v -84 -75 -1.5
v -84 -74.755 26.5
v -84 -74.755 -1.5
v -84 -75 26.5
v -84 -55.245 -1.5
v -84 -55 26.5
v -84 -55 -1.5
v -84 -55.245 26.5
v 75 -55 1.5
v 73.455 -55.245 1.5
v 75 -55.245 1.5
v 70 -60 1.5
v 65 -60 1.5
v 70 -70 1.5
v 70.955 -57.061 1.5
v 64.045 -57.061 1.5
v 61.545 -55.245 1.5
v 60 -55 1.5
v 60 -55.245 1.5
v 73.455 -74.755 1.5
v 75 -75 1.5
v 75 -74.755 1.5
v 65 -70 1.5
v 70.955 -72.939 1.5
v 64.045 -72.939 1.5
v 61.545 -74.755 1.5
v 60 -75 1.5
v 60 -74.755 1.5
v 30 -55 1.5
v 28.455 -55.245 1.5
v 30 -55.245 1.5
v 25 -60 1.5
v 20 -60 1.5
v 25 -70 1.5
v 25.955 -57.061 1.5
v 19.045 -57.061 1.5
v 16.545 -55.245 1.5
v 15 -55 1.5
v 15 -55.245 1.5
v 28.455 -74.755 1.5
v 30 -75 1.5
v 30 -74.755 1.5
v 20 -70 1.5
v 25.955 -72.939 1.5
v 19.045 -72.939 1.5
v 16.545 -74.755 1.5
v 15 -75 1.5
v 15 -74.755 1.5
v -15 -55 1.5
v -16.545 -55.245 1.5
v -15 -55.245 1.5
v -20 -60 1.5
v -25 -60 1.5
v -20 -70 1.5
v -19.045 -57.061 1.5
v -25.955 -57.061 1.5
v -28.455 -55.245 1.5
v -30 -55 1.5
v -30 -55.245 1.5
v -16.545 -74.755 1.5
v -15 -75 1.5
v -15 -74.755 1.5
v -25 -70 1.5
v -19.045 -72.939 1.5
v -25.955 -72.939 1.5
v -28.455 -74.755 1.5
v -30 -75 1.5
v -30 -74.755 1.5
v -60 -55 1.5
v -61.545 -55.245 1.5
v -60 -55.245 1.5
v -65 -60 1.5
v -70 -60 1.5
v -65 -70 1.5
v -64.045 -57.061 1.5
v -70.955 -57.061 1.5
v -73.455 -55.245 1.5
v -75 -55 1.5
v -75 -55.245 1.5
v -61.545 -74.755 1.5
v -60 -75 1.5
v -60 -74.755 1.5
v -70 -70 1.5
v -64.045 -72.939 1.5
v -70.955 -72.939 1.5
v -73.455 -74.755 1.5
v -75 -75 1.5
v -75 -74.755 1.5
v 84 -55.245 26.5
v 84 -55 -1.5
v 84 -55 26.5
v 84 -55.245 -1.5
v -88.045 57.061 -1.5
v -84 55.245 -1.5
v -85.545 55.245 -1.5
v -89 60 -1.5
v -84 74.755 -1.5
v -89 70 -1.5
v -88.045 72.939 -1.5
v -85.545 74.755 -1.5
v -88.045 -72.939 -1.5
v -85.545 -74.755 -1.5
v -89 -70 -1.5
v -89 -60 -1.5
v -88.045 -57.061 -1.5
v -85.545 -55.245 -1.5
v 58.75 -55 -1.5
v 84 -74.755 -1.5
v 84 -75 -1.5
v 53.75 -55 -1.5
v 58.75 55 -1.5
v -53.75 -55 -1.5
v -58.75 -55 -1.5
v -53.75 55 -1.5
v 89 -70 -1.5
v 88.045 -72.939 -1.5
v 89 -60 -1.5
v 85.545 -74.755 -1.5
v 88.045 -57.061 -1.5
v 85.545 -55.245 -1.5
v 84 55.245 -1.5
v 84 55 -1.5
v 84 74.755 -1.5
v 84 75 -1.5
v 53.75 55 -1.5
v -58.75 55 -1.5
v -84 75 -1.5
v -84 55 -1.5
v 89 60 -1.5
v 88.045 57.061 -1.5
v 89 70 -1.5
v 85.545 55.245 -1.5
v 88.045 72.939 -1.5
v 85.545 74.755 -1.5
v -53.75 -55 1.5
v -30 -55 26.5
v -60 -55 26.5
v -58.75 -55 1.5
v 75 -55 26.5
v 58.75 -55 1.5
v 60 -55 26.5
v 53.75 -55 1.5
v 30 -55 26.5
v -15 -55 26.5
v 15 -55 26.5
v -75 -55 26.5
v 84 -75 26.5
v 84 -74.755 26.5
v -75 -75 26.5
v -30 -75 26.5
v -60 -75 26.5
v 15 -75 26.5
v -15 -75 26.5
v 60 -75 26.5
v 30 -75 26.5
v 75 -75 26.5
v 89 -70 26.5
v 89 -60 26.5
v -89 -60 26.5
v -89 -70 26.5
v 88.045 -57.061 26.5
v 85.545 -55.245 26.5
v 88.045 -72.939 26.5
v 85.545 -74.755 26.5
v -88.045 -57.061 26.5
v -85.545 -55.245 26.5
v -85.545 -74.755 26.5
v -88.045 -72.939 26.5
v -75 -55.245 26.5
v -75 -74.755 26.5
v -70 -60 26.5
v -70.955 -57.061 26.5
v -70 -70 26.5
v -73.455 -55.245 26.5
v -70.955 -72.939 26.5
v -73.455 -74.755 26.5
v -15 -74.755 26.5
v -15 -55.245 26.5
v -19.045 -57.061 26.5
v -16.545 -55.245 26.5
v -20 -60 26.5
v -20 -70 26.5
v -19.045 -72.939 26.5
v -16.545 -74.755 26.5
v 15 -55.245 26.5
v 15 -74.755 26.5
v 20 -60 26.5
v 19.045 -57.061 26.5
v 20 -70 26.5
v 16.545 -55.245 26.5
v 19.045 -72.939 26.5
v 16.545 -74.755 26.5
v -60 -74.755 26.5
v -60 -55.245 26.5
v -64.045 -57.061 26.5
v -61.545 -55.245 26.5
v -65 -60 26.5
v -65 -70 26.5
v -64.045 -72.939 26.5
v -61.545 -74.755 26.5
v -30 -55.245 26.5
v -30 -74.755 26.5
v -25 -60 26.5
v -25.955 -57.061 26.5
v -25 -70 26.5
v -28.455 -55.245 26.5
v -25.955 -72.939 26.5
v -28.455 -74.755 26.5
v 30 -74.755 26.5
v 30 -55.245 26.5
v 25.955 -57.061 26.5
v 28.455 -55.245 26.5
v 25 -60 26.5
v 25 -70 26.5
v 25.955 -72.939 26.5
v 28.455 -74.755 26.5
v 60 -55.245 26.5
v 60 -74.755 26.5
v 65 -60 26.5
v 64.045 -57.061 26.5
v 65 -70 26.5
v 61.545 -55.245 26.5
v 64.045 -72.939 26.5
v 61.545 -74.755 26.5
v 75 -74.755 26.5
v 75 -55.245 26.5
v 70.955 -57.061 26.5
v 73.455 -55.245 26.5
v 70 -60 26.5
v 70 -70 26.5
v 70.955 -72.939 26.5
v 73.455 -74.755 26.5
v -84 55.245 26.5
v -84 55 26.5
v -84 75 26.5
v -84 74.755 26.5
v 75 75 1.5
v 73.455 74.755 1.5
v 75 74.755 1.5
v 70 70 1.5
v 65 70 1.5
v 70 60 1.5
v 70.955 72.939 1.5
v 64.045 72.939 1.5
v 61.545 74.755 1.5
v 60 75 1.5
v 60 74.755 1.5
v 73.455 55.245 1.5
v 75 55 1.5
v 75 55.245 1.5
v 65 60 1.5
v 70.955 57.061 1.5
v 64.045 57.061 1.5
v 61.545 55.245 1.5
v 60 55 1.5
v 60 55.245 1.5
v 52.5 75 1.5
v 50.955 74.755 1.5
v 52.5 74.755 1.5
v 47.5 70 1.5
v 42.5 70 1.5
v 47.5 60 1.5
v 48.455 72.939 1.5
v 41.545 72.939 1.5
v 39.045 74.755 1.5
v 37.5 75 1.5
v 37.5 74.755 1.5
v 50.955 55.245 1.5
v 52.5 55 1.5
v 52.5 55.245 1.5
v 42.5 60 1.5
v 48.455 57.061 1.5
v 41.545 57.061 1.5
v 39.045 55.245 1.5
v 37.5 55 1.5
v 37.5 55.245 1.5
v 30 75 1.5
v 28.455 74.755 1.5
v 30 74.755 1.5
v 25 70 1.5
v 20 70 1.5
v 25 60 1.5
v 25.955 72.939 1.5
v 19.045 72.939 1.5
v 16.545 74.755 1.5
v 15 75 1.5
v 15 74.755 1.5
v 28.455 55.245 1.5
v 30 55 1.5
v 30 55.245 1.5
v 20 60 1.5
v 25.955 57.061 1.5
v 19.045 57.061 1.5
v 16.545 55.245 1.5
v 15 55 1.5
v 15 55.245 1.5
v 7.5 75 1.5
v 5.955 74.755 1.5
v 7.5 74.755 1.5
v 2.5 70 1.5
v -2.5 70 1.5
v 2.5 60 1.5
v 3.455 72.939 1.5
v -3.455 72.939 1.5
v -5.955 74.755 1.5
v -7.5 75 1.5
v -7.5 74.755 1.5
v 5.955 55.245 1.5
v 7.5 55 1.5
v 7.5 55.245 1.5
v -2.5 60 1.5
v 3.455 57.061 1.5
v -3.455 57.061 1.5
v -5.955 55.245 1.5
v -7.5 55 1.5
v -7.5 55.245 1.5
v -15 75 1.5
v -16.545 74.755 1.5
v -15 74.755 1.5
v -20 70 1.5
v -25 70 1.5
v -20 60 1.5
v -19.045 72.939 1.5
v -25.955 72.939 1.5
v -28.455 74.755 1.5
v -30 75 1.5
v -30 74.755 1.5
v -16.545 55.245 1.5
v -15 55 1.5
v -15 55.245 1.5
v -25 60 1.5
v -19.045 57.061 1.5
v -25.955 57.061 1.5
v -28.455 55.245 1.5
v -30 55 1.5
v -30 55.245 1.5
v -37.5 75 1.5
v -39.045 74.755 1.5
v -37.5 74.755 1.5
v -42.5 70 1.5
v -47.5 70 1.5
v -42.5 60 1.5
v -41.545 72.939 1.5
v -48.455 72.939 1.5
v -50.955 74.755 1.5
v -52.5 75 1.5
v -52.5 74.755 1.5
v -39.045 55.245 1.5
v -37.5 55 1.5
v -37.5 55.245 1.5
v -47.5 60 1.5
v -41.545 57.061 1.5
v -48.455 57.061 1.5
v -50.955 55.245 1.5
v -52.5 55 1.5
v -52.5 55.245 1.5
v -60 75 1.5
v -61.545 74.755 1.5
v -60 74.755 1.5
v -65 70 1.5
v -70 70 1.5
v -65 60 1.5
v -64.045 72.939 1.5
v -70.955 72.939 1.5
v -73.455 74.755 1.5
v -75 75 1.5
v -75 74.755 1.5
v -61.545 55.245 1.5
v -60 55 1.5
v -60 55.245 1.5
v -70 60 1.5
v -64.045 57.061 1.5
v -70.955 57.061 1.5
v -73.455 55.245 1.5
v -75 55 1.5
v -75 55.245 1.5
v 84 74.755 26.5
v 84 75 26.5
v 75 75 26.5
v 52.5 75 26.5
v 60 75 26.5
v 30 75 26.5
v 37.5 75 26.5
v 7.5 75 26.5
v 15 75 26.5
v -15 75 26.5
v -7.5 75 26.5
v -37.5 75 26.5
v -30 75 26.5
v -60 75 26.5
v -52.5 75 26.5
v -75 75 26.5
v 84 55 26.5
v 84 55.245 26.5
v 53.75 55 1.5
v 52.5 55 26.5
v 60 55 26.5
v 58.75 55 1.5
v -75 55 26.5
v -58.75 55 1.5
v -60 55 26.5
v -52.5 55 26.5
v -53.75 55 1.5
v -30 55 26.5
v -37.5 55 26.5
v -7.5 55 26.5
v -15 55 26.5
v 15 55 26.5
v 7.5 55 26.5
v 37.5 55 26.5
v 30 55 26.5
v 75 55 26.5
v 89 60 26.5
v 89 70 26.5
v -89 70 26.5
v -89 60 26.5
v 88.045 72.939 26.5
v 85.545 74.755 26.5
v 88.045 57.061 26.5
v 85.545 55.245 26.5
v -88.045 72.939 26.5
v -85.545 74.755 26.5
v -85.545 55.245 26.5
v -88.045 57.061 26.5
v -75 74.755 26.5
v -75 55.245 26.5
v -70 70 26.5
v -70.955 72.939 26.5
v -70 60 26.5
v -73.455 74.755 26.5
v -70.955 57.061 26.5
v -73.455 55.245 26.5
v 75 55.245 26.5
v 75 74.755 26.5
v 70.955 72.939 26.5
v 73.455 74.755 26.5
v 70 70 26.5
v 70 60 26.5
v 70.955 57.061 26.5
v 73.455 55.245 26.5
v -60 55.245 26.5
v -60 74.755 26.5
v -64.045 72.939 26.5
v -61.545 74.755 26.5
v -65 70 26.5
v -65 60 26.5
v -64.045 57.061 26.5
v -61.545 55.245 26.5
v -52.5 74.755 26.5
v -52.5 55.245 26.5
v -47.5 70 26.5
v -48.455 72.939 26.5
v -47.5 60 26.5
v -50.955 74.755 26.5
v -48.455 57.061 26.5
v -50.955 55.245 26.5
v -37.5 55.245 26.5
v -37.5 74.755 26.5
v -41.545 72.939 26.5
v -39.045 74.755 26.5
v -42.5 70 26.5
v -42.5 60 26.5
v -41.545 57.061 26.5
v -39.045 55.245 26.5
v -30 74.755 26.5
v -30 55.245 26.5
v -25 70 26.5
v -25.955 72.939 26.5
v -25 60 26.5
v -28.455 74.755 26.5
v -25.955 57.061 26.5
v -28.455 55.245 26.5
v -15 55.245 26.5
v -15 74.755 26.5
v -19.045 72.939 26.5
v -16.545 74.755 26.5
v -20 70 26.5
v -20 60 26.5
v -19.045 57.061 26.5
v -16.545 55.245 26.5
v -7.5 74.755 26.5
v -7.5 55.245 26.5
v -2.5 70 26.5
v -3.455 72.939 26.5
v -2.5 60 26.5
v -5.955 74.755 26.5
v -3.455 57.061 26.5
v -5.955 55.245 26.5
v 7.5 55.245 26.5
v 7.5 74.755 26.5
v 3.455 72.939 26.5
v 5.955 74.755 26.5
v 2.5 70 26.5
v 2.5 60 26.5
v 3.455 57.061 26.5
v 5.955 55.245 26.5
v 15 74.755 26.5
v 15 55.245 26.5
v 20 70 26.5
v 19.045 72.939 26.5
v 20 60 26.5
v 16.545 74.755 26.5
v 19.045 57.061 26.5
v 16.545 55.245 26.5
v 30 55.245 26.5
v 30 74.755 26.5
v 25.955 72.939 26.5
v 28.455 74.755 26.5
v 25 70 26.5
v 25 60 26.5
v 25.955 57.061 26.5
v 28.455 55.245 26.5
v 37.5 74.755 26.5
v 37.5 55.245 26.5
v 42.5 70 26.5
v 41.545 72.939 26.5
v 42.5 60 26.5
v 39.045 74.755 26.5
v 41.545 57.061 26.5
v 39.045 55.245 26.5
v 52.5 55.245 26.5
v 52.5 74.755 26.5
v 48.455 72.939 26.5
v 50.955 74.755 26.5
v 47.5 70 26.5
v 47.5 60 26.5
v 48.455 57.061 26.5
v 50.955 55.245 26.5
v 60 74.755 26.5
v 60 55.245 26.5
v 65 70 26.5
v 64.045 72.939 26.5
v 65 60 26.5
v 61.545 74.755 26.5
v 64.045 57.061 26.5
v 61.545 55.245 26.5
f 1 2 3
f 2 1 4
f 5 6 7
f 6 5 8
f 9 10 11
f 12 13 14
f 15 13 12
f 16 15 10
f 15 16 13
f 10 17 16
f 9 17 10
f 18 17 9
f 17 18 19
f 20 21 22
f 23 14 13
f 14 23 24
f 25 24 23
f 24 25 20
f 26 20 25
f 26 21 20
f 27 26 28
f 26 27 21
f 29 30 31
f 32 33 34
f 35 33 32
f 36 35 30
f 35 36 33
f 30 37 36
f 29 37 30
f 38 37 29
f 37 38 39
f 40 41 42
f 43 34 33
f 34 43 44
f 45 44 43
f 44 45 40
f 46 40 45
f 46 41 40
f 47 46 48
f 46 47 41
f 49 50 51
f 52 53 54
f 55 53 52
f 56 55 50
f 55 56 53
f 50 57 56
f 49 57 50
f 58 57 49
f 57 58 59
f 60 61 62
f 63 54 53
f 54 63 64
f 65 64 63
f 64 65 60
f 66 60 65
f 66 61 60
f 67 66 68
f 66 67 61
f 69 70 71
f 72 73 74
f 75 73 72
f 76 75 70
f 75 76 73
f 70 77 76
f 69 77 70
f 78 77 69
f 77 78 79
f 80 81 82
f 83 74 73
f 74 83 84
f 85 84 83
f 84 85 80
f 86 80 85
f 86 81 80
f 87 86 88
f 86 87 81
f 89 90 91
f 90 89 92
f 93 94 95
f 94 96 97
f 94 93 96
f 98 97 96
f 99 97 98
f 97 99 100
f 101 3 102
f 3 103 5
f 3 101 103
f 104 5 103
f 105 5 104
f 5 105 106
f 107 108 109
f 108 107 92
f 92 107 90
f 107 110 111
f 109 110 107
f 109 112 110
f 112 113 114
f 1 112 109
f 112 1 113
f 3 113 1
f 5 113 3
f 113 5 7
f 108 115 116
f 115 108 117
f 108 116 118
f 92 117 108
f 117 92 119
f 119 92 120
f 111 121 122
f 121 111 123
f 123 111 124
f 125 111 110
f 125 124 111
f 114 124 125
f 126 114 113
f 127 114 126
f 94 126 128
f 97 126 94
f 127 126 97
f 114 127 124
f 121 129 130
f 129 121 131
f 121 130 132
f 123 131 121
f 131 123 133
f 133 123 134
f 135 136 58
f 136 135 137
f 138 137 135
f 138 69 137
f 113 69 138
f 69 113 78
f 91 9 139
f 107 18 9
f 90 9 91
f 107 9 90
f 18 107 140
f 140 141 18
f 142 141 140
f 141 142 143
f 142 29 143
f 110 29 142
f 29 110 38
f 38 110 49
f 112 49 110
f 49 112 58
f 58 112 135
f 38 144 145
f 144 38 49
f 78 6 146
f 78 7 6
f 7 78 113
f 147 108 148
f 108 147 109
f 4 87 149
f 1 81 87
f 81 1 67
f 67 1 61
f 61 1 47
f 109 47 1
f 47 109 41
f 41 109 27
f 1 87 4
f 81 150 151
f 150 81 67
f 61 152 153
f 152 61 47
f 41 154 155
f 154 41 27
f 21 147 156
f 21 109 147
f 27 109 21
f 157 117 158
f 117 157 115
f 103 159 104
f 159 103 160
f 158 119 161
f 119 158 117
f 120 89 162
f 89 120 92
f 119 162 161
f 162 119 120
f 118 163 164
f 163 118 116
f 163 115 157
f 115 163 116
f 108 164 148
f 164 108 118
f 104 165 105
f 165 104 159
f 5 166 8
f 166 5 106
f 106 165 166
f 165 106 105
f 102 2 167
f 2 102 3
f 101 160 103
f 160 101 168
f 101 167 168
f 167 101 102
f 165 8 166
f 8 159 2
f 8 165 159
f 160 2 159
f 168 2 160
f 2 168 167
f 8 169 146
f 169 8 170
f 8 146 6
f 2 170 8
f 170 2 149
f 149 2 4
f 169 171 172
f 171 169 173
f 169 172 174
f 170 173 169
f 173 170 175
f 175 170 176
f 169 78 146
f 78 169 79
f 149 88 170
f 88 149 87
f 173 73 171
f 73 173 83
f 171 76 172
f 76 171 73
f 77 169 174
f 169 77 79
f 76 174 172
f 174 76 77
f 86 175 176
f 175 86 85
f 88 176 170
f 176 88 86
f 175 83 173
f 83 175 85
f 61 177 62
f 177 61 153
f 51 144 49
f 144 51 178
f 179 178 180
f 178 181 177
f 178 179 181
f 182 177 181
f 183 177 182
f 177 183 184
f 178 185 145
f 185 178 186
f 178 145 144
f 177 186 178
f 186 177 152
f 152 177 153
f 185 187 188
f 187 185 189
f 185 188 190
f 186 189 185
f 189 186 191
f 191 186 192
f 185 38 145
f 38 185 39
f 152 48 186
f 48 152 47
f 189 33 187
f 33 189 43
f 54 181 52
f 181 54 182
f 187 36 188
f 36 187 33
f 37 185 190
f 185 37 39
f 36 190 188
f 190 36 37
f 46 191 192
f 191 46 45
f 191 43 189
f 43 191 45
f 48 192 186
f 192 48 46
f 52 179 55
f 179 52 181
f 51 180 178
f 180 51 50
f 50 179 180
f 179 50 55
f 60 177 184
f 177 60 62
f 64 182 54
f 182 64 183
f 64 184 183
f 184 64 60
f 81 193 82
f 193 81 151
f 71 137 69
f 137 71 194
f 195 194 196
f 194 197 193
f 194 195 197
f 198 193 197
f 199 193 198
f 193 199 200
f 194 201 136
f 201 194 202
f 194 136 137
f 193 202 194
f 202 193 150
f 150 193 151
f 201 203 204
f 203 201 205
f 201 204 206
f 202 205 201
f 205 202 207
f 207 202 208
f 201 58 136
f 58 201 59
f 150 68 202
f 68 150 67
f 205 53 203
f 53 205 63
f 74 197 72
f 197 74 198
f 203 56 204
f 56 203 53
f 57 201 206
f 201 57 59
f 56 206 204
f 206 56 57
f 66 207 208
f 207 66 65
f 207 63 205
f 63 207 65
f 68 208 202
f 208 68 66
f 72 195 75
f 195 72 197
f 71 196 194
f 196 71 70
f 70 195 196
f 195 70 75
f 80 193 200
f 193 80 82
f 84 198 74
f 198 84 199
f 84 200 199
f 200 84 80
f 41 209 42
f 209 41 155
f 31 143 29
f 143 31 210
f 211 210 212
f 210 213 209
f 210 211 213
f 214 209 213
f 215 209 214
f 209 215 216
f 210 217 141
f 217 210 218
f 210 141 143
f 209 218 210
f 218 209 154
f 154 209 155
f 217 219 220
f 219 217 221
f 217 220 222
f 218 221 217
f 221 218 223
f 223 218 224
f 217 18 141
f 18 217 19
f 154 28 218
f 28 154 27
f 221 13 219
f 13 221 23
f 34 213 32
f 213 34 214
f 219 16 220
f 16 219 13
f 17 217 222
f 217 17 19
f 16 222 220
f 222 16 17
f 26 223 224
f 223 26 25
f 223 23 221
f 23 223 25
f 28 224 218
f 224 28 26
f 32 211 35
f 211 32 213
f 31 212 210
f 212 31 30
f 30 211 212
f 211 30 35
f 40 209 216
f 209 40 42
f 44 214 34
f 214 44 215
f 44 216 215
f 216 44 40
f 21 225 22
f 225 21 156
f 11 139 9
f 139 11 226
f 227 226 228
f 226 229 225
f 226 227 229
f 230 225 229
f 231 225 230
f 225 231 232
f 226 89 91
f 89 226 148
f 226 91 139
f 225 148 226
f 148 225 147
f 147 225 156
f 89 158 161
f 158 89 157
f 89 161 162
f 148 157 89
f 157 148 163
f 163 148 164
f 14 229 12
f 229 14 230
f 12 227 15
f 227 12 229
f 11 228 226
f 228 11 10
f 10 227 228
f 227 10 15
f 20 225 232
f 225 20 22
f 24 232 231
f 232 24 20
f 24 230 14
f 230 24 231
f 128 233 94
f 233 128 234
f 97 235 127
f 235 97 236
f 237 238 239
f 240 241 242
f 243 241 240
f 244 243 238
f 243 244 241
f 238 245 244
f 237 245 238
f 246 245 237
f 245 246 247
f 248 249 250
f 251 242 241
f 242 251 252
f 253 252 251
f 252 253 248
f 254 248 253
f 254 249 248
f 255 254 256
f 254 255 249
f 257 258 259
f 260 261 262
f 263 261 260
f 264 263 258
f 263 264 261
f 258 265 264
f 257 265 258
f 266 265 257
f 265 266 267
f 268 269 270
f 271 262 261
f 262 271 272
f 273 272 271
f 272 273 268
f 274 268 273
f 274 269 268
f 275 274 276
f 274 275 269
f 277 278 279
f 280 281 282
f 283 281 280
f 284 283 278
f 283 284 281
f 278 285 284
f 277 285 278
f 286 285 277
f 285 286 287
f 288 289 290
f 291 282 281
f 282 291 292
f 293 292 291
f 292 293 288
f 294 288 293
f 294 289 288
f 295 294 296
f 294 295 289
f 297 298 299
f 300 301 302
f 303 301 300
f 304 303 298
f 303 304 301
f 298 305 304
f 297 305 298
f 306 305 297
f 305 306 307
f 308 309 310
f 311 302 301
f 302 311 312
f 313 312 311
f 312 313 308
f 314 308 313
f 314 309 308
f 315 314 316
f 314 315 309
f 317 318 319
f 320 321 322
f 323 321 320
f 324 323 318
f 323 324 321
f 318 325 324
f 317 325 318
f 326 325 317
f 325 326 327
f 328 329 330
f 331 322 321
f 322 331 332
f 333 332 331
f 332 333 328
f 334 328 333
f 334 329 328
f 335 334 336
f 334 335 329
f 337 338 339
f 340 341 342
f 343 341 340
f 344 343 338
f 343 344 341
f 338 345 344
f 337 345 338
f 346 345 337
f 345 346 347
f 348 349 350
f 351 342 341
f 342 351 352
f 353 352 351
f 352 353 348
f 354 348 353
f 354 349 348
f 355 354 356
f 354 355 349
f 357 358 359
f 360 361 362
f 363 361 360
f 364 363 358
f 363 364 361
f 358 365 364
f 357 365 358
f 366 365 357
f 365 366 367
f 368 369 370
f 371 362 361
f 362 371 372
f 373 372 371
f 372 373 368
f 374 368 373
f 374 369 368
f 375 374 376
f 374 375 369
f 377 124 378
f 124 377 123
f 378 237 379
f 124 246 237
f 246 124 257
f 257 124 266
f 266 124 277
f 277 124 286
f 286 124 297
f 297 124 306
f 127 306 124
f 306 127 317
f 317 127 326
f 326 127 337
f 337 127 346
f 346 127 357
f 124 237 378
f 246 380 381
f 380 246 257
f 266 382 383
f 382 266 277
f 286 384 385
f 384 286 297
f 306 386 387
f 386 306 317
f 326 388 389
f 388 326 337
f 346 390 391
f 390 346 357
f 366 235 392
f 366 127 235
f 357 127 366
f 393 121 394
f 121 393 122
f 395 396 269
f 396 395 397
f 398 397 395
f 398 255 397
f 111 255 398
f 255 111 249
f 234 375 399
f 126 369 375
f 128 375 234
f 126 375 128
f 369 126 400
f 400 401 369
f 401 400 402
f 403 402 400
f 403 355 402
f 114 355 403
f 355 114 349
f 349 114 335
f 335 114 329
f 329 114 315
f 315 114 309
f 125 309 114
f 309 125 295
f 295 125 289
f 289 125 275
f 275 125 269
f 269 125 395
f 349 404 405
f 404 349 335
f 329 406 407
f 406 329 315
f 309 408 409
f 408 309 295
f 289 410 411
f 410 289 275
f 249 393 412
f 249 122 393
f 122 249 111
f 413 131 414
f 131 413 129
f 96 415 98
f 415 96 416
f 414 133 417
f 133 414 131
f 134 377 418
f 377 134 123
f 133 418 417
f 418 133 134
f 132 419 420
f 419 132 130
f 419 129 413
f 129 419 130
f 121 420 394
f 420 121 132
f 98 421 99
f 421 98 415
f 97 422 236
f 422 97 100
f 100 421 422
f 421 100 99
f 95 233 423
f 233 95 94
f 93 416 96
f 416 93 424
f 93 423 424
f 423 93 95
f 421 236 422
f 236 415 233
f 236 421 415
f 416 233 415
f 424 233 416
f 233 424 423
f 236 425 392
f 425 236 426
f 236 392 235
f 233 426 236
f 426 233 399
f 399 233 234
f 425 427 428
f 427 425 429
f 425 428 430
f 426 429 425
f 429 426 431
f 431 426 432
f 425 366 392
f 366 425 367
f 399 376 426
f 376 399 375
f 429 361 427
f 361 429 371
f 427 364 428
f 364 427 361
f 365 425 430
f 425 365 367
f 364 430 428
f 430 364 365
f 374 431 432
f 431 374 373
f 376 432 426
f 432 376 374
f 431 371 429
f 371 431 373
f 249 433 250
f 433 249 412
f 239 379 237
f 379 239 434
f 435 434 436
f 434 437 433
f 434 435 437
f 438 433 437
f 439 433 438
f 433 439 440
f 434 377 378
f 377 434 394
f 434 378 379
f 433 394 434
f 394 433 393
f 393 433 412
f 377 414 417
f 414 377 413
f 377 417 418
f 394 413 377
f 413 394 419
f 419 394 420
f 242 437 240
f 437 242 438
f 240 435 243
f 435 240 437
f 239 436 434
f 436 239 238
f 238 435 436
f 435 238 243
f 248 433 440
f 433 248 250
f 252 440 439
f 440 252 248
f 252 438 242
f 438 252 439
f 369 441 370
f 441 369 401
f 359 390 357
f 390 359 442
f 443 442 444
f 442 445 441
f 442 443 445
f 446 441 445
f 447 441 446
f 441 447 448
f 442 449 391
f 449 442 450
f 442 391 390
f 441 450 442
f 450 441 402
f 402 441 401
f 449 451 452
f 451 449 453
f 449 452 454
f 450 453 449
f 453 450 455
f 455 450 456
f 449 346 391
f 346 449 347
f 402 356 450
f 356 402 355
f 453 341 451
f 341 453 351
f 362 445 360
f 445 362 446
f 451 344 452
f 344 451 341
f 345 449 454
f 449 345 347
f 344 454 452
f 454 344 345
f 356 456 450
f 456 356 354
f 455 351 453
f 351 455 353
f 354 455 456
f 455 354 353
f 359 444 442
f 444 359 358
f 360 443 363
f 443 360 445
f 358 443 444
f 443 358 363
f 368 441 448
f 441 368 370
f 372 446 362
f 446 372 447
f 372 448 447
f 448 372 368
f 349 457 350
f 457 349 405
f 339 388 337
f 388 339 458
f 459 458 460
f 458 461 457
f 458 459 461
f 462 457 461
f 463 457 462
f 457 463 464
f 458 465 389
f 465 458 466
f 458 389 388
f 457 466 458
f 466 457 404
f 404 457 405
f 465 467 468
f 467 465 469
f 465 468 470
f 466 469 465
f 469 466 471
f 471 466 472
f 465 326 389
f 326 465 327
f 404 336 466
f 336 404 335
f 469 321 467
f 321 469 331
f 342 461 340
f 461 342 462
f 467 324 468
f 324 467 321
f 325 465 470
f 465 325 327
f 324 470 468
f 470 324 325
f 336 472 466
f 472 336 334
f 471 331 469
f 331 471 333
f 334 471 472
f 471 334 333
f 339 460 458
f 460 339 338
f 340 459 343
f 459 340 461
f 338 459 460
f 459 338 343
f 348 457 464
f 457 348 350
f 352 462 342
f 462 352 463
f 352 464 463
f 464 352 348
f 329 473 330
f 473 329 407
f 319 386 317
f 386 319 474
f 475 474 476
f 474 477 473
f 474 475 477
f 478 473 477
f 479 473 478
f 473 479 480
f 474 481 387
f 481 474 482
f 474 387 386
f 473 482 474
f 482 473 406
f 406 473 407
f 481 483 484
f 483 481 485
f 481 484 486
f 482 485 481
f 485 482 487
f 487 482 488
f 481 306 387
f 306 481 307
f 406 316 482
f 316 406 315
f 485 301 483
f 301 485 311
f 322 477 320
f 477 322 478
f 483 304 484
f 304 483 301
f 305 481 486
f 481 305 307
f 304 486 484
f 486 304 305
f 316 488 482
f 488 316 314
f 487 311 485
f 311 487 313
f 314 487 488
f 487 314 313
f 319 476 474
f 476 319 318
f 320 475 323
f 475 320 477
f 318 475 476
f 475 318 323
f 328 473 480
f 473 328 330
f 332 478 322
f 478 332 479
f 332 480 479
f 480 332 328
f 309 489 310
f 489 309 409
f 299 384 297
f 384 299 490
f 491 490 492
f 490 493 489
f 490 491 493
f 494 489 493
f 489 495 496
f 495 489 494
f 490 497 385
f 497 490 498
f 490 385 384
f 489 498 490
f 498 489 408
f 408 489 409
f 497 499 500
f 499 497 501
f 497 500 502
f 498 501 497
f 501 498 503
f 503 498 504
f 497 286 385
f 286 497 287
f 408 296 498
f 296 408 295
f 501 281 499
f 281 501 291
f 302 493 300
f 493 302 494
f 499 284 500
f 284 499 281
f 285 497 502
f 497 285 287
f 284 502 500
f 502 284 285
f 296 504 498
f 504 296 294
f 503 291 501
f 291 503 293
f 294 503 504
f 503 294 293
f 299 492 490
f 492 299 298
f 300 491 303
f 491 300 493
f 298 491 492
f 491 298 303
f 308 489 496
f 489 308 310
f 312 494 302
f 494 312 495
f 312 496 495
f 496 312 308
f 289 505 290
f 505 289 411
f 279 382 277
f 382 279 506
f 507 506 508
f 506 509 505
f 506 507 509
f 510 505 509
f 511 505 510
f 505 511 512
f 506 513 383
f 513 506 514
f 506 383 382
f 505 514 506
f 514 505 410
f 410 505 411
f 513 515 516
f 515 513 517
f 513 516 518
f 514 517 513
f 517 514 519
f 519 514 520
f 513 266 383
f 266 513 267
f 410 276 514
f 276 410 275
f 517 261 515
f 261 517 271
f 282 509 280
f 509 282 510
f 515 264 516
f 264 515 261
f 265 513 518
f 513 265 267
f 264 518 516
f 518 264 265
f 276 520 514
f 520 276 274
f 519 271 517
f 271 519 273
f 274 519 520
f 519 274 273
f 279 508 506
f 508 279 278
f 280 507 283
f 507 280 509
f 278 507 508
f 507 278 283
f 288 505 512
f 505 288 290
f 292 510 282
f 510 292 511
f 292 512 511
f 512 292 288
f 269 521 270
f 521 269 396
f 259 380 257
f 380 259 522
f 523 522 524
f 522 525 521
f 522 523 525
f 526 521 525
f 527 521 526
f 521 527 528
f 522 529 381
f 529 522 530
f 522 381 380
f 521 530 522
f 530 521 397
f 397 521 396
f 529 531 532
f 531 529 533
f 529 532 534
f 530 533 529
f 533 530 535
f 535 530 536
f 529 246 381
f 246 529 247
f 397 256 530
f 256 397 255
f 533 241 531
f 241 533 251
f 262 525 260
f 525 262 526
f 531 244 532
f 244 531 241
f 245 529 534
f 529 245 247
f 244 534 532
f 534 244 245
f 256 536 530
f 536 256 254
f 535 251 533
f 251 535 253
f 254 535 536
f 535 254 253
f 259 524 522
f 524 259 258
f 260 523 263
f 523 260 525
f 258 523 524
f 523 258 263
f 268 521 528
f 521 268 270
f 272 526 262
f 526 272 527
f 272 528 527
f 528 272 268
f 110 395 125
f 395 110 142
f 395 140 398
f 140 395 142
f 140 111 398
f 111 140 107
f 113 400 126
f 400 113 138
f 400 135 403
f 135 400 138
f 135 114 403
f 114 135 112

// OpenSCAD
$fn = 10;

module roundedCube(x, y, z, r=5) {
    
    cube([x - (r * 2), y - (r * 2), z], center = true);
    translate([0, (y - r) / 2, 0]) cube([x - (r * 2), r, z], center = true);
    translate([0, -(y - r) / 2, 0]) cube([x - (r * 2), r, z], center = true);
    translate([(x - r) / 2, 0, 0]) cube([r, y - (r * 2), z], center = true);
    translate([-(x - r) / 2, 0, 0]) cube([r, y - (r * 2), z], center = true);
    
    translate([(x - (2 * r))/ 2, (y - (2 * r)) / 2, 0]) cylinder(r = r, h = z, center = true);
    translate([(x - (2 * r))/ 2, -(y - (2 * r)) / 2, 0]) cylinder(r = r, h = z, center = true);
    translate([-(x - (2 * r))/ 2, (y - (2 * r)) / 2, 0]) cylinder(r = r, h = z, center = true);
    translate([-(x - (2 * r))/ 2, -(y - (2 * r)) / 2, 0]) cylinder(r = r, h = z, center = true);
    
};

overallX = 178;
y = 20;
baseZ = 3;
topZ = 25;
topX1 = 19;
topX2 = 40;
topX3 = 17.5;
spaceX = 5;
separation = 150;

translate([0, -(separation - y) / 2, 0])
union() {
    roundedCube(overallX, y, baseZ);
    translate([0, 0, ((baseZ + topZ) / 2)]) {
        translate([-(overallX - topX1) / 2, 0, 0]) roundedCube(topX1, y, topZ);
        translate([-(topX2 + spaceX), 0, 0]) roundedCube(topX2, y, topZ);
        roundedCube(topX2, y, topZ);
        translate([(topX2 + spaceX), 0, 0]) roundedCube(topX2, y, topZ);
        translate([(overallX - topX1) / 2, 0, 0]) roundedCube(topX1, y, topZ);
    };
};

translate([0, (separation - y) / 2, 0])
union() {
    roundedCube(overallX, y, baseZ);
    translate([0, 0, ((baseZ + topZ) / 2)]) {
        translate([-(overallX - topX1) / 2, 0, 0]) roundedCube(topX1, y, topZ);
        translate([-((topX3 + spaceX) / 2 + (spaceX + topX3) * 2), 0, 0]) roundedCube(topX3, y, topZ);
        translate([-((topX3 + spaceX) / 2 + spaceX + topX3), 0, 0]) roundedCube(topX3, y, topZ);
        translate([-(topX3 + spaceX) / 2, 0, 0]) roundedCube(topX3, y, topZ);
        translate([(topX3 + spaceX) / 2, 0, 0]) roundedCube(topX3, y, topZ);
        translate([(topX3 + spaceX) / 2 + spaceX + topX3, 0, 0]) roundedCube(topX3, y, topZ);
        translate([(topX3 + spaceX) / 2 + (spaceX + topX3) * 2, 0, 0]) roundedCube(topX3, y, topZ);
        translate([(overallX - topX1) / 2, 0, 0]) roundedCube(topX1, y, topZ);
    };
};

translate([(topX3 + spaceX) / 2 + (spaceX + topX3) * 2, 0, 0]) cube([5, separation, baseZ], center = true);
translate([-((topX3 + spaceX) / 2 + (spaceX + topX3) * 2), 0, 0]) cube([5, separation, baseZ], center = true);
